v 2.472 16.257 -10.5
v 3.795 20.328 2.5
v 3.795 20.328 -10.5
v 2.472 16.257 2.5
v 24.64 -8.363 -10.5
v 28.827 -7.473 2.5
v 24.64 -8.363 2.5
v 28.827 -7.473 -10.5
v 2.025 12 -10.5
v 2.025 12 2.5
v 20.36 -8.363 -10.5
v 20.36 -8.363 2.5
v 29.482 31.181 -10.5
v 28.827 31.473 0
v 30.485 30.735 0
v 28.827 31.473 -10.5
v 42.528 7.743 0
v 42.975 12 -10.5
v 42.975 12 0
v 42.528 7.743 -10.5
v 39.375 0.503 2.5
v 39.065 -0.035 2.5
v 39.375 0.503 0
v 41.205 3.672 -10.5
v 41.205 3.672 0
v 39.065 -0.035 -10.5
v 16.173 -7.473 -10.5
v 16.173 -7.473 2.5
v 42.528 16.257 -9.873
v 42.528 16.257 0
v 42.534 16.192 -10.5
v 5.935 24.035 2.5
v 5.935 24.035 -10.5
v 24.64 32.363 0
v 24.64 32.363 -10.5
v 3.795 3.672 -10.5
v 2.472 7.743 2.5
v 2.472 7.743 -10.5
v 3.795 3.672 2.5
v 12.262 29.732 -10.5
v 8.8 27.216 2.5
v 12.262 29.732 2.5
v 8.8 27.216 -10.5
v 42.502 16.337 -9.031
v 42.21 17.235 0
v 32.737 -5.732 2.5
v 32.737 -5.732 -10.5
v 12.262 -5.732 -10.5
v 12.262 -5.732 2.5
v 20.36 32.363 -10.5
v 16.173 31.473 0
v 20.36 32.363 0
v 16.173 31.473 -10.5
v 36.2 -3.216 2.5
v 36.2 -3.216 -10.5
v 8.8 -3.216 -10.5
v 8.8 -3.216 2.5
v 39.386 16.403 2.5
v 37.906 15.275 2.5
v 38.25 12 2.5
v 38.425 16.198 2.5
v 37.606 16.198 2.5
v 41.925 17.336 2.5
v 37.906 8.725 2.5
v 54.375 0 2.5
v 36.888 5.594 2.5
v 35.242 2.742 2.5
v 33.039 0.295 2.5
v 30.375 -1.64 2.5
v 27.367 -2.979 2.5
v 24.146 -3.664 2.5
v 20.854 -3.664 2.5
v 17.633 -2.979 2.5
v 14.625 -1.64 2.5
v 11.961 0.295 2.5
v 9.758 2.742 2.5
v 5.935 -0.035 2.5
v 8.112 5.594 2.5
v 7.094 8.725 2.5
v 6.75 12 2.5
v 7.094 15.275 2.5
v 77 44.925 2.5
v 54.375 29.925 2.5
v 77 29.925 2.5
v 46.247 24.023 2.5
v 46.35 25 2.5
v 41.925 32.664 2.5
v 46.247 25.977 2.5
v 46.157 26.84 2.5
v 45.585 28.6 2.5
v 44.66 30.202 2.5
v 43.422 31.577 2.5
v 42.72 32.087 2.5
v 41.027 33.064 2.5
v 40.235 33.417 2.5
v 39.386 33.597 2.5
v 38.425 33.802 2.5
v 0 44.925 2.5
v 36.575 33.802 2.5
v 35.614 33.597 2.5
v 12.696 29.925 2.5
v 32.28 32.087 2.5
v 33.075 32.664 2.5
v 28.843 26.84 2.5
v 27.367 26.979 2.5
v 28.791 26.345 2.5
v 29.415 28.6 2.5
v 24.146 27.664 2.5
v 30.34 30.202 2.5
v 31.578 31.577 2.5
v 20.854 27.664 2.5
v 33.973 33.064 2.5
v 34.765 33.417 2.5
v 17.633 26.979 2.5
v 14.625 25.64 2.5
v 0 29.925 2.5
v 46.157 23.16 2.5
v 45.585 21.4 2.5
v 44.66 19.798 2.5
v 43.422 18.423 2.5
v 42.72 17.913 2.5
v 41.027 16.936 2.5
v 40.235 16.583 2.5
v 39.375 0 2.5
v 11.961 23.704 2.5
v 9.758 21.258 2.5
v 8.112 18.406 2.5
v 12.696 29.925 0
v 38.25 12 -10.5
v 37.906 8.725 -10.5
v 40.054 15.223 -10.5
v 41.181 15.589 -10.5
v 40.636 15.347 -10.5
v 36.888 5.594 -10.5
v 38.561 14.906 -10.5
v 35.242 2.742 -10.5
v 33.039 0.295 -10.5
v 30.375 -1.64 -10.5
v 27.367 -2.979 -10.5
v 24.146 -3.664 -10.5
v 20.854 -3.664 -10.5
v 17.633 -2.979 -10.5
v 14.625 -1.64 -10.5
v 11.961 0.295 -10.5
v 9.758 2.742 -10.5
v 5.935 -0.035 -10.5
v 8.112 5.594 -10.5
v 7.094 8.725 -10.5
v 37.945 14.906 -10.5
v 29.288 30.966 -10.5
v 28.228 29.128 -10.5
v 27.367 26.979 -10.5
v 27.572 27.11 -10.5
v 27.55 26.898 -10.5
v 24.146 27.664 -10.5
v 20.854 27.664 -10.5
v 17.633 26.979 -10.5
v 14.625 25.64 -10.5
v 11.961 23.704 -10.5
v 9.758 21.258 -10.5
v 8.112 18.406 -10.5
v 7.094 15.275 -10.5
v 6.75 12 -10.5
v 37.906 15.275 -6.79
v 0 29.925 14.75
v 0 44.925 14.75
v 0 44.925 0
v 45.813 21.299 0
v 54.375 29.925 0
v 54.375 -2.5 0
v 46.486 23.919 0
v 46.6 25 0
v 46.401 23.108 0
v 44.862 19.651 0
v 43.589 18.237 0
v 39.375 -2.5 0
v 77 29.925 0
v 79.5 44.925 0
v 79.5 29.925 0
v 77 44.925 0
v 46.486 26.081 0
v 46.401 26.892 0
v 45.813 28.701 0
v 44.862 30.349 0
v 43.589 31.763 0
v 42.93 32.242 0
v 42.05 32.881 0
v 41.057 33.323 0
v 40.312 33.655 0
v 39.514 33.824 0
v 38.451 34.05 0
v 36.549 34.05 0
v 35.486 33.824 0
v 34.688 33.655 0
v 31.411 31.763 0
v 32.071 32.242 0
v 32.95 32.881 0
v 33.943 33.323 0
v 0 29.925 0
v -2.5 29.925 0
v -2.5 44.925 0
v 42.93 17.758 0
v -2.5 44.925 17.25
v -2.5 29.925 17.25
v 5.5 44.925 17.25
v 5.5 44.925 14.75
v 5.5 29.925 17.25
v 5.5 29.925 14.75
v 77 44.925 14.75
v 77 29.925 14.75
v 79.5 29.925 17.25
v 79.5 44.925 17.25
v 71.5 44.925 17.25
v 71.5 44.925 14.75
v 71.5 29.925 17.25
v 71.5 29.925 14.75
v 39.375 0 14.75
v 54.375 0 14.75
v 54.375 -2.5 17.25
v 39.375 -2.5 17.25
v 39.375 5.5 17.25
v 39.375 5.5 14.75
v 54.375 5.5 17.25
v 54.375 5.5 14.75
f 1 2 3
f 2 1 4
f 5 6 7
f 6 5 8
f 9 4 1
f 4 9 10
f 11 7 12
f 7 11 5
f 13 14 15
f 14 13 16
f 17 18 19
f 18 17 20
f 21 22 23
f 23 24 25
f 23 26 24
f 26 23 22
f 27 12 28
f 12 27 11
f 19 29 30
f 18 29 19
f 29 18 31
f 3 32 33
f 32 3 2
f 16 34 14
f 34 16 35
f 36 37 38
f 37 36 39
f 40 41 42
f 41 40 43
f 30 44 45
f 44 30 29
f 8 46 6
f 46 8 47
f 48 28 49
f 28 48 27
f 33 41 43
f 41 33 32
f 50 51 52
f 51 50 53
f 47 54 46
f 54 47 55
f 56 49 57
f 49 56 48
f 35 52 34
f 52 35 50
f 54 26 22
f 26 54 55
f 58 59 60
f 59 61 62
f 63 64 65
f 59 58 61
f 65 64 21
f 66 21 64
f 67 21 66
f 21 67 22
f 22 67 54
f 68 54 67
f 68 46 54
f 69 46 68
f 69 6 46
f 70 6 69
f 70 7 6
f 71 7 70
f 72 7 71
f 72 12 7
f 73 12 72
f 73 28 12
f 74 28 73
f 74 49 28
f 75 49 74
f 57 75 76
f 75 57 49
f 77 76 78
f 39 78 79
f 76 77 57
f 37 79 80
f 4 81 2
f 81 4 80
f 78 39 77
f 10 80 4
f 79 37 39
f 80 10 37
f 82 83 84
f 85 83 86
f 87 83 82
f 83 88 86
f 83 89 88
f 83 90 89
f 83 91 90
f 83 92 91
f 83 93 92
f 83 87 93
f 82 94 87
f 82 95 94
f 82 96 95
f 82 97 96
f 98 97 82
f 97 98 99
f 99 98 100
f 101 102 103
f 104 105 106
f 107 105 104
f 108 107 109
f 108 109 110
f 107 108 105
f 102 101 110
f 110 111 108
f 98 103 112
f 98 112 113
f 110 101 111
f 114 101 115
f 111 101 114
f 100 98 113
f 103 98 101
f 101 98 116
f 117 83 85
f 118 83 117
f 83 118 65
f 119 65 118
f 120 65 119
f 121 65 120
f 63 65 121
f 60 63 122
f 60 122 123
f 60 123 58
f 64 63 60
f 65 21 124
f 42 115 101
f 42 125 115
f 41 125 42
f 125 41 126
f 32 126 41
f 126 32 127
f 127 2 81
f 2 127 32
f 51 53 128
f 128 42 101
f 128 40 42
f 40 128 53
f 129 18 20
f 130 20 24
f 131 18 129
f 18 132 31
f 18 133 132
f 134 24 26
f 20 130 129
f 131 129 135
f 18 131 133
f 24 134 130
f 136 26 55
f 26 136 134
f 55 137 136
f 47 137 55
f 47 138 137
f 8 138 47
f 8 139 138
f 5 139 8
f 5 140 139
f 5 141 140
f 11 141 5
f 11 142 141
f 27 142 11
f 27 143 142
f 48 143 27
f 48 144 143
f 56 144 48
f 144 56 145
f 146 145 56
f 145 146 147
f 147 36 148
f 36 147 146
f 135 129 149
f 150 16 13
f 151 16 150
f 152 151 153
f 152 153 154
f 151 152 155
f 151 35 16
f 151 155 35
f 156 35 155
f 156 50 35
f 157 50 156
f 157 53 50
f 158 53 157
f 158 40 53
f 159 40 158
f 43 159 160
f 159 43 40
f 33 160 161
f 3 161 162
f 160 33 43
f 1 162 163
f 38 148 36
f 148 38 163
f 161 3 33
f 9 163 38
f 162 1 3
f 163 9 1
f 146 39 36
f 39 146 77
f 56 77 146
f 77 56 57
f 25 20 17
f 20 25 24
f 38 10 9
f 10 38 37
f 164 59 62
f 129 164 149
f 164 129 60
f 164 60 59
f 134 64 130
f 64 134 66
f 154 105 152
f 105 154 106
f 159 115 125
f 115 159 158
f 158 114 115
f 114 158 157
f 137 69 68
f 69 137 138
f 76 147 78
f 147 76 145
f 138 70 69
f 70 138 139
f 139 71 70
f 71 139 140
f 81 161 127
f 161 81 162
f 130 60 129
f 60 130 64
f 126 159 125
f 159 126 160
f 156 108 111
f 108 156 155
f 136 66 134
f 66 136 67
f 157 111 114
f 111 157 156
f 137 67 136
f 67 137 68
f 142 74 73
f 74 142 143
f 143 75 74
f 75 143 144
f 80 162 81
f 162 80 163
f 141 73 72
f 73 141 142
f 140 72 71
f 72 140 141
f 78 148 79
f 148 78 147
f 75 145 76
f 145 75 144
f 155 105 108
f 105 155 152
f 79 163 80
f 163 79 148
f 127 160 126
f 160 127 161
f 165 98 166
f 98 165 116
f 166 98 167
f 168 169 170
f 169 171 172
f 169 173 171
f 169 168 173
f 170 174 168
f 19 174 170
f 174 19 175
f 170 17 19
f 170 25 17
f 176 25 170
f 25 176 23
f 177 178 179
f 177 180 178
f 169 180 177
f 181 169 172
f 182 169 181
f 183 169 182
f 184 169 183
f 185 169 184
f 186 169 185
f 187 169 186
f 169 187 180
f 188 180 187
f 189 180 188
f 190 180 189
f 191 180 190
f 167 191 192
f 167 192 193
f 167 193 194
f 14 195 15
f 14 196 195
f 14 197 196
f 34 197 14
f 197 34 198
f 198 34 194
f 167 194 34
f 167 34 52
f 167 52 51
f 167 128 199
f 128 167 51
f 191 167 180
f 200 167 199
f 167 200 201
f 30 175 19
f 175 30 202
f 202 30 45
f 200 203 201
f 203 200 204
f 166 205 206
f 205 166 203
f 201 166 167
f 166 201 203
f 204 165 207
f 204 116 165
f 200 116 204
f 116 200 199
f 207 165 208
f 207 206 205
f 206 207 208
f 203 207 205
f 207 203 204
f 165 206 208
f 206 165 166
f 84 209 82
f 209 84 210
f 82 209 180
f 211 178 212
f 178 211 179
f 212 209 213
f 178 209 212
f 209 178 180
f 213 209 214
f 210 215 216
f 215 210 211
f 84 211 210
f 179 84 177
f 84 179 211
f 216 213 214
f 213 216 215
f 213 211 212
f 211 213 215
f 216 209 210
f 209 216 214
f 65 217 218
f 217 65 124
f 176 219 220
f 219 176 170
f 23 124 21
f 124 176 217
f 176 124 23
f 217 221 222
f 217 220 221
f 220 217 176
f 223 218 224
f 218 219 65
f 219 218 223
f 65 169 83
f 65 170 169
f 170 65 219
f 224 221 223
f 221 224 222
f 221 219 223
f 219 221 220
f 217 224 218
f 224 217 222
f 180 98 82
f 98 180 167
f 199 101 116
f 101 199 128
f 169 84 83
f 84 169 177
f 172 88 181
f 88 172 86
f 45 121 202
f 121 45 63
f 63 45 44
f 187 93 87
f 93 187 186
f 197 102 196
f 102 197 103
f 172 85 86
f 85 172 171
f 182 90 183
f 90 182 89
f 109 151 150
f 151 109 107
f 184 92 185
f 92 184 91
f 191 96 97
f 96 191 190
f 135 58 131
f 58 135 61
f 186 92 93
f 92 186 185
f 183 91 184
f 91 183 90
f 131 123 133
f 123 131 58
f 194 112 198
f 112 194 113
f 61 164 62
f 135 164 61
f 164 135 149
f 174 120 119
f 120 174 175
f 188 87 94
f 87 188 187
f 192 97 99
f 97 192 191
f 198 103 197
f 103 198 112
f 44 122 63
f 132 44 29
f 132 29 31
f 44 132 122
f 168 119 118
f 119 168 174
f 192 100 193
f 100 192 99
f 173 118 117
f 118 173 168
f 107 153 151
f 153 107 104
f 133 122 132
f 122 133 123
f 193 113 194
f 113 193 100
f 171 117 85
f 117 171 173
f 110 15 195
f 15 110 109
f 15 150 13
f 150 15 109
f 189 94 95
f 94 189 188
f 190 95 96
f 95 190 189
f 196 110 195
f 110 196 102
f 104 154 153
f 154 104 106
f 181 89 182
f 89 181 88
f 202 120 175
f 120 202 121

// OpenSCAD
monocular_diameter = 31.5;
monocular_depth = 13;

phone_depth = 2.5;
phone_strip = 15;
phone_tooth = 5;
phone_width = 77;

cam_x = 22.5;
cam_y = 12;

finger_print_diameter = 13;
finger_print_x = 37.5;
finger_print_y = 25;

clip_height = 12;
clip_length = 3;
clip_margin = 0.25;

module monocular() {
    //holder for the monocular
    difference() {
        cylinder(d = 1.3 * monocular_diameter, h = monocular_depth );
        translate([0,0, -0.5*monocular_depth]) cylinder(d = monocular_diameter, h = 2*monocular_depth );
    }
}

module clip() {    
    //body of the clip
    color([1,0,0])
    cube( [ phone_depth, phone_strip, phone_depth+clip_height+0.5*phone_tooth] );
    
    //head of the clip
    color([0,1,0])
    translate( [ 0, 0, phone_depth+clip_margin+clip_height ] )
        cube( [ phone_tooth+clip_length, phone_strip, 0.5*phone_tooth] ); 
}

module finger_print() {
    cylinder( d1 = 2*finger_print_diameter, d2 = finger_print_diameter, h = 5 * max( monocular_depth, phone_depth ) );
}

module phone() {
    //attachement to the phone
    
    //vertical bar
    translate([ 1.25*monocular_diameter, 0, 0])
        cube([phone_strip, 1.25*monocular_diameter, phone_depth]);
            
    //horizontal bar
    translate([ 0, 0.95 * monocular_diameter, 0])
        cube([phone_width, phone_strip,  phone_depth]);

    //clips: right
    translate([-phone_depth, 0.95*monocular_diameter, 0]) clip();

    //clips: left
    translate([phone_width+phone_depth, 0.95*monocular_diameter, 0]) mirror([1, 0, 0]) clip();
    
    //clips: upper
    translate([1.25*monocular_diameter+phone_strip, -phone_depth, 0]) rotate([0, 0, 90]) clip();
}

difference() {
    union() {
        translate([cam_x, cam_y, phone_depth-monocular_depth]) monocular();
        phone();
    }
    translate([finger_print_x, finger_print_y, -3*max( monocular_depth, phone_depth) ])
        finger_print();
}
